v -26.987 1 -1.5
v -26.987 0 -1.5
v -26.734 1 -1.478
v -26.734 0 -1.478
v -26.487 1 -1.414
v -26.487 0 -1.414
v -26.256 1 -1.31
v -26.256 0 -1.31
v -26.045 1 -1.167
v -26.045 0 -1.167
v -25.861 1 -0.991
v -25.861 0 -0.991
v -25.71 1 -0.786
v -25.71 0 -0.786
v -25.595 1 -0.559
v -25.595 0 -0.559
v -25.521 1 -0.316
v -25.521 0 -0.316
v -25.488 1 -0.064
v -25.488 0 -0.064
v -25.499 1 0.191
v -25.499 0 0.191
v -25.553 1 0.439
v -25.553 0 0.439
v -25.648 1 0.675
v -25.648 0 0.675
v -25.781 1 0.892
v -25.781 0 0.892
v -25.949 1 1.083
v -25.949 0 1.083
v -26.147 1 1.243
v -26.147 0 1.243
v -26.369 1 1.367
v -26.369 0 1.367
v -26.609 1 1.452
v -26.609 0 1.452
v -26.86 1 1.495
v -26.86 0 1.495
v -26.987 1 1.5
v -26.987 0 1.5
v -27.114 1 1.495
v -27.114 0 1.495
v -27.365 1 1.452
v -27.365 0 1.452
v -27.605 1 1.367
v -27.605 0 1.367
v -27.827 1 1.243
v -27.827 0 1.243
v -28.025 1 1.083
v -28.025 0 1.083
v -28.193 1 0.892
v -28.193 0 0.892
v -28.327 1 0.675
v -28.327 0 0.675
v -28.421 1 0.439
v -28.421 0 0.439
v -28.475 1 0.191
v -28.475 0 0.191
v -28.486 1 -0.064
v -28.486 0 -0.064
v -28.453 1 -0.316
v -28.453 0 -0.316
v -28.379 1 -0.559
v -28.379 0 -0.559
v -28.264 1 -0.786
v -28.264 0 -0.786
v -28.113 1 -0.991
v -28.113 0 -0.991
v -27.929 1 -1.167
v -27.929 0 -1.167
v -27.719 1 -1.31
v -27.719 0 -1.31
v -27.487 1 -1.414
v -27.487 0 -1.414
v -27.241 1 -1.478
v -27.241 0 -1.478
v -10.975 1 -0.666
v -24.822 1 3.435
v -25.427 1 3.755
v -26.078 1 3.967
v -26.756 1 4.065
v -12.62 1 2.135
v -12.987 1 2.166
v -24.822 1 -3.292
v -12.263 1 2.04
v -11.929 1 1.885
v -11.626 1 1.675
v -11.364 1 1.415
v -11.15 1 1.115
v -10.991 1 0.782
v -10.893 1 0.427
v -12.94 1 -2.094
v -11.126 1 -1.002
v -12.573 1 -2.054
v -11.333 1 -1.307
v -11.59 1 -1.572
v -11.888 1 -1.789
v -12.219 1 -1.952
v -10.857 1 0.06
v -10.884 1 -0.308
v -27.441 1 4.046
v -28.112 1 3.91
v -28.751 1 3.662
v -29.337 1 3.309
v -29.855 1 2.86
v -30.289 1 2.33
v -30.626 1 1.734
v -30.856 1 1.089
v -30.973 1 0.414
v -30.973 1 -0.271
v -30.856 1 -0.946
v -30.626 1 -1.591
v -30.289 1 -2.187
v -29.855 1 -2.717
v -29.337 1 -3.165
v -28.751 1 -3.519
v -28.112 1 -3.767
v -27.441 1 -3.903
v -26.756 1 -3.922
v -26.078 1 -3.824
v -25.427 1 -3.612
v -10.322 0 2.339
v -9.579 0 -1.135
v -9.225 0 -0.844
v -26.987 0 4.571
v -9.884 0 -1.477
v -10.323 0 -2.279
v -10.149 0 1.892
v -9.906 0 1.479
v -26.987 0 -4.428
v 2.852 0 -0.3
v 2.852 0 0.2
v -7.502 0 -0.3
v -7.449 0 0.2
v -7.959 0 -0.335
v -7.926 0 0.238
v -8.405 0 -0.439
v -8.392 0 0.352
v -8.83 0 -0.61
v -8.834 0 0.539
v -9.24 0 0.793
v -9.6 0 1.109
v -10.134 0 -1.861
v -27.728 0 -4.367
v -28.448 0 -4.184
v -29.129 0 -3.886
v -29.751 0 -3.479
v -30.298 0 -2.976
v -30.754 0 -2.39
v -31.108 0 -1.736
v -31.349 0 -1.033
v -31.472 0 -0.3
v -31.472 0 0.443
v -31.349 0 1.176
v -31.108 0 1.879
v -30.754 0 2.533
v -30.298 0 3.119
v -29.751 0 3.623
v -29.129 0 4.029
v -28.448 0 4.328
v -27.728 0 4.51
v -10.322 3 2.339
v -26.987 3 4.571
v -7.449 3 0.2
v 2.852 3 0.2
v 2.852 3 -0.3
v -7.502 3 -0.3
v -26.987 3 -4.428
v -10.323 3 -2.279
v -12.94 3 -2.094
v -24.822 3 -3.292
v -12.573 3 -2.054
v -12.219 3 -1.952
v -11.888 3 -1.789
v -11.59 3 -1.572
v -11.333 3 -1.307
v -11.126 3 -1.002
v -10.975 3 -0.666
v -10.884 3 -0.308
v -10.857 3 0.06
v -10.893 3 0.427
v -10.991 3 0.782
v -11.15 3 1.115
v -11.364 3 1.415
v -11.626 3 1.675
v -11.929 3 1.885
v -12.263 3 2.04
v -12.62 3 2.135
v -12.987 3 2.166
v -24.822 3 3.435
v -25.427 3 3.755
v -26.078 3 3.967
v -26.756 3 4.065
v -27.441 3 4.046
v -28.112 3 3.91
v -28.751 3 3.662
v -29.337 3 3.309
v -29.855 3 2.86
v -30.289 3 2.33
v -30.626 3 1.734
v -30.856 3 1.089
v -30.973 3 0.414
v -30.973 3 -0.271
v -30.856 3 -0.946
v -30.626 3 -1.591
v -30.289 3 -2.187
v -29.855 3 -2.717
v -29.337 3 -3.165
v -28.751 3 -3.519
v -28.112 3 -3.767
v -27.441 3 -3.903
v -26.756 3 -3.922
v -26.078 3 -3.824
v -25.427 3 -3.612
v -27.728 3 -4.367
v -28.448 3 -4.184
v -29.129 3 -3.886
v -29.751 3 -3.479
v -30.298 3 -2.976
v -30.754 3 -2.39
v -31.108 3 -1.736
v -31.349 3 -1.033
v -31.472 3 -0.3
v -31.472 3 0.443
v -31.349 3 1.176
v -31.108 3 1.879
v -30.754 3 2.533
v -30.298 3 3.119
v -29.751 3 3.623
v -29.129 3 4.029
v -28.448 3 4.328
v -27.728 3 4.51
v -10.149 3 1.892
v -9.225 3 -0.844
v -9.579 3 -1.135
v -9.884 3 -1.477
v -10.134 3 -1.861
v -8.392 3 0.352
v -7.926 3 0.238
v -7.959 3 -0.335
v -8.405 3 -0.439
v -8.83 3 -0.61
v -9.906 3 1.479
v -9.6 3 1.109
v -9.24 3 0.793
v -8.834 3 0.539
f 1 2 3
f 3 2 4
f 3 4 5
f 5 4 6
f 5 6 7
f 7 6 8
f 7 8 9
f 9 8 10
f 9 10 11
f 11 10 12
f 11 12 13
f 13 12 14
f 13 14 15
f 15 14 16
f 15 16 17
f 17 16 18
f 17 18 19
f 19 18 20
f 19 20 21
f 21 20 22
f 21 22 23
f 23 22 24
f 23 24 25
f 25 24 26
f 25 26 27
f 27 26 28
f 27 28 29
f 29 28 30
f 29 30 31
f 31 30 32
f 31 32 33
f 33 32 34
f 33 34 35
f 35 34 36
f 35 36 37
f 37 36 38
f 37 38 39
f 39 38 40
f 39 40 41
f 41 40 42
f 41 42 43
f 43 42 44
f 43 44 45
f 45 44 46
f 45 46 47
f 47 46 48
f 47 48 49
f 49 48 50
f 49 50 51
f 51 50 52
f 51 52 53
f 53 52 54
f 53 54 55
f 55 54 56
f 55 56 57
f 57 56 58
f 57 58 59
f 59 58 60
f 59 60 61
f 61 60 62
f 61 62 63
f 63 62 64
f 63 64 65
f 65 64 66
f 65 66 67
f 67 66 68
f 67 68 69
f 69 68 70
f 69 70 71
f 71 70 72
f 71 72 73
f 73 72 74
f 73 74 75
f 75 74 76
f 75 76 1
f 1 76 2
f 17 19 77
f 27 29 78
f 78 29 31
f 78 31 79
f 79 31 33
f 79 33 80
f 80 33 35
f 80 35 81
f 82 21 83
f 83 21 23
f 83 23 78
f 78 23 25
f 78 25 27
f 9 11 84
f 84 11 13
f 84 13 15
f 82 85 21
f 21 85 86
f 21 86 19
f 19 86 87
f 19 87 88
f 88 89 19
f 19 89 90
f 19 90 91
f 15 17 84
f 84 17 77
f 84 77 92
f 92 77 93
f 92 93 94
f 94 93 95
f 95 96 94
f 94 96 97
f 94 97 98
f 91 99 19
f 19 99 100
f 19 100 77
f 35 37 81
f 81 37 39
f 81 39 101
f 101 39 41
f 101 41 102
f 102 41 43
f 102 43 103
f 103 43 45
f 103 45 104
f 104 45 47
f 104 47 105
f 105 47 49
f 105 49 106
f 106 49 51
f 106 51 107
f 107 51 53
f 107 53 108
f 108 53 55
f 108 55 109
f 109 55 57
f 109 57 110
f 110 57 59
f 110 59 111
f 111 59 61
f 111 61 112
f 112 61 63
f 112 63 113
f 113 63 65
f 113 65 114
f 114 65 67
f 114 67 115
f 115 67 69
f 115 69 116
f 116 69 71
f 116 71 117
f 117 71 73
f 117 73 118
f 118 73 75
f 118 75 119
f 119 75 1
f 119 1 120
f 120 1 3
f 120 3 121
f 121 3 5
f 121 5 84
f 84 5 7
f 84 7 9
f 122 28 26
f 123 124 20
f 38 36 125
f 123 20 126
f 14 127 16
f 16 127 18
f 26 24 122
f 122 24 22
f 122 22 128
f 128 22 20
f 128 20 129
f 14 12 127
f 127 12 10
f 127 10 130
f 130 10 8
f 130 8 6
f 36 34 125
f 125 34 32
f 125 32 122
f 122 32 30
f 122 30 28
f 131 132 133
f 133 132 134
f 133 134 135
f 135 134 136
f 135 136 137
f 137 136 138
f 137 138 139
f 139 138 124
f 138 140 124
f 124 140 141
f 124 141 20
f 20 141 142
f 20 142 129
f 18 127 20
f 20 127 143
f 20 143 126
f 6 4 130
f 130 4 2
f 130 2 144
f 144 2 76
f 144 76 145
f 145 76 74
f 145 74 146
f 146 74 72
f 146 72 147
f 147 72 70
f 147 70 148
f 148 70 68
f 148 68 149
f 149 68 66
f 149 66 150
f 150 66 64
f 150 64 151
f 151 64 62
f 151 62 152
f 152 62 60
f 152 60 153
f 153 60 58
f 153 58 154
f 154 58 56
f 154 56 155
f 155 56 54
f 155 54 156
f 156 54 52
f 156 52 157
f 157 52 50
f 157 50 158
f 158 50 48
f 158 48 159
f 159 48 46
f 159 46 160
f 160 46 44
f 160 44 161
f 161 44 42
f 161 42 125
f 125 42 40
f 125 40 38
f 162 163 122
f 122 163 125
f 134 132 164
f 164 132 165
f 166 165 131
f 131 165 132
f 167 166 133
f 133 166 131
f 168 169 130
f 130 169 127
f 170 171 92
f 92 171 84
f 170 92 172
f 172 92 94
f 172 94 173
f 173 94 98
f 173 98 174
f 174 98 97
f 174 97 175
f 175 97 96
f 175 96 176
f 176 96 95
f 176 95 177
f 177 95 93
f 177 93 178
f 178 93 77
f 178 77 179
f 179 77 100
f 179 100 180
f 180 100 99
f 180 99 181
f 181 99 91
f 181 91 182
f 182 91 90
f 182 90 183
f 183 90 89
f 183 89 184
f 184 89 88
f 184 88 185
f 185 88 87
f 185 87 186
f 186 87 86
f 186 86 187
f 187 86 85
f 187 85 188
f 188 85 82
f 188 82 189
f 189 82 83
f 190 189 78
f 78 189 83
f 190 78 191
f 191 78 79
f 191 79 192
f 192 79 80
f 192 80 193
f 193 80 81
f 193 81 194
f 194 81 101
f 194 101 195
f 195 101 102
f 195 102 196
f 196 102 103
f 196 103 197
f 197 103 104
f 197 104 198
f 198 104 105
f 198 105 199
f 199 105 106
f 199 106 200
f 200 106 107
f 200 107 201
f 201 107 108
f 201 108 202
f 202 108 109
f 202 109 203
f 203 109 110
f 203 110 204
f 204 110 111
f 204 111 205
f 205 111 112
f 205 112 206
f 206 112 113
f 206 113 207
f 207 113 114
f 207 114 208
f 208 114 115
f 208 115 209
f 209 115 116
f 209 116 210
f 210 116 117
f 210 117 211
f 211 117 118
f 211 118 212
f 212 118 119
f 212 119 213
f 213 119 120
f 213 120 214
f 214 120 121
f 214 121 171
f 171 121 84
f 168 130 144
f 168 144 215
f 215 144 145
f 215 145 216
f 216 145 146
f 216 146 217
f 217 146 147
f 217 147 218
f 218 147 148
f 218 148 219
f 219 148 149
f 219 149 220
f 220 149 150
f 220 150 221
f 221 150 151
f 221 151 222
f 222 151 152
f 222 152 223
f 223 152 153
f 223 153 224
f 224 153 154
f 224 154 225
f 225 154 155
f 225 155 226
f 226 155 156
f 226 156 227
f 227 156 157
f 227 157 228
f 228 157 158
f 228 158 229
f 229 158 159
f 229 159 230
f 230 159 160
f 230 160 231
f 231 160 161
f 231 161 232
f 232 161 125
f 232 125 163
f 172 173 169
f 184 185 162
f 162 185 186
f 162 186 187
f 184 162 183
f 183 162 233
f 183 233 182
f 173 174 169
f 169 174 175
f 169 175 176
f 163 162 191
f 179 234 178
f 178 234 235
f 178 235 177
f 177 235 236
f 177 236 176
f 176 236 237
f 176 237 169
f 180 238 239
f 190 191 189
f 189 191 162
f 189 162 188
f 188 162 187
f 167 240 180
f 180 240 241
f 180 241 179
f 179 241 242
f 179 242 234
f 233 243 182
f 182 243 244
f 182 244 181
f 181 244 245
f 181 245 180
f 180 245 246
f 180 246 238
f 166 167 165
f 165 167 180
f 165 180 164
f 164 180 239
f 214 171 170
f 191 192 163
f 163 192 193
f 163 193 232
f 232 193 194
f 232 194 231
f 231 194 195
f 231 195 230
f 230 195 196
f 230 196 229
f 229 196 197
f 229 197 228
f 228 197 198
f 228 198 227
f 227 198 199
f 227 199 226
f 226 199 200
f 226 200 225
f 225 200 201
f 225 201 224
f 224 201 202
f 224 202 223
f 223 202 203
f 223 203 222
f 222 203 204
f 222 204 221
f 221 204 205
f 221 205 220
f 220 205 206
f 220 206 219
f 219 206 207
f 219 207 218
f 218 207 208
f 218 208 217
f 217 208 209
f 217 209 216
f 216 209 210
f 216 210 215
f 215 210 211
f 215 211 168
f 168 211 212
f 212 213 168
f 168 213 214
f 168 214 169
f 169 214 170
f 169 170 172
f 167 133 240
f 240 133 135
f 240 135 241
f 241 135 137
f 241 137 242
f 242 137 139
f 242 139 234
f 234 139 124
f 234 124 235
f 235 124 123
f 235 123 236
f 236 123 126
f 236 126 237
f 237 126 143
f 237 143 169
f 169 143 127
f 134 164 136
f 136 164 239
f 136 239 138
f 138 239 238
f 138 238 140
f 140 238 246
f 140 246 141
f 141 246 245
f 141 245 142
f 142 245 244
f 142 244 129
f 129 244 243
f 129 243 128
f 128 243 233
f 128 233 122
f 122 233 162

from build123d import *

# Parameters (mm, degrees)
SKETCH2_R           = 1.5
BOSS_EXTRUDE1_DEPTH = 1
BOSS_EXTRUDE2_DEPTH = 3
FILLET1_R           = 3
FILLET2_R           = 3


with BuildPart() as part:
    # Sketch2 → Boss-Extrude1 (new body)
    with BuildSketch(Plane(origin=(0, 0, 0), x_dir=(1, 0, 0), z_dir=(0, 1, 0))):
        with BuildLine():
            Line((-12.939762178, 2.094266176), (-24.821781773, 3.29179515))
            ThreePointArc((-24.821781773, 3.29179515), (-30.987291256, -0.071668068), (-24.821747911, -3.435069212))
            Line((-24.821747911, -3.435069212), (-12.987160246, -2.166440487))
            ThreePointArc((-12.987160246, -2.166440487), (-10.8566751, -0.059524017), (-12.939762178, 2.094266176))
        make_face()
        with Locations(Location((-26.987114413, 0, 0), (0, 0, 270))):
            Circle(SKETCH2_R, mode=Mode.SUBTRACT)
    extrude(amount=BOSS_EXTRUDE1_DEPTH)

    # Sketch2<3> → Boss-Extrude2 (add)
    with BuildSketch(Plane(origin=(0, 0, 0), x_dir=(1, 0, 0), z_dir=(0, 1, 0))):
        with BuildLine():
            Line((-10.322349305, -2.339041202), (-10.322728968, -0.2))
            Line((-10.322728968, -0.2), (2.851540312, -0.2))
            Line((2.851540312, -0.2), (2.851540312, 0.3))
            Line((2.851540312, 0.3), (-10.322728968, 0.3))
            Line((-10.322728968, 0.3), (-10.322728968, 2.279037645))
            Line((-10.322728968, 2.279037645), (-26.987114411, 4.428185187))
            ThreePointArc((-26.987114411, 4.428185187), (-31.48694753, -0.071647931), (-26.987114411, -4.57148105))
            Line((-26.987114411, -4.57148105), (-10.322349305, -2.339041202))
        make_face()
        with BuildLine():
            ThreePointArc((-12.939762178, 2.094266176), (-10.8566751, -0.059524017), (-12.987160246, -2.166440487))
            Line((-12.987160246, -2.166440487), (-24.821747911, -3.435069212))
            ThreePointArc((-24.821747911, -3.435069212), (-30.987291256, -0.071668068), (-24.821781773, 3.29179515))
            Line((-24.821781773, 3.29179515), (-12.939762178, 2.094266176))
        make_face(mode=Mode.SUBTRACT)
    extrude(amount=BOSS_EXTRUDE2_DEPTH)

    # Fillet1
    # the kernel refuses this fillet: 3 mm, written as the material it adds along each edge
    with BuildSketch(Plane(origin=(-10.322728968, 0, -0.3), x_dir=(1, 0, 0), z_dir=(0, 1, 0))) as fillet1_piece_1:
        with BuildLine():
            CenterArc((2.820928193, 3), FILLET1_R, 199.896419226, 70.103580774)
            Line((0, 1.979037645), (-0.056418564, 1.958618398))
            ThreePointArc((-0.056418564, 1.958618398), (-0.06, 0.989518822), (-0.06, 0))
            Line((-0.06, 0), (0, -0.06))
            Line((0, -0.06), (2.820928193, -0.06))
            Line((2.820928193, -0.06), (2.820928193, 0))
        make_face()
    extrude(amount=3)

    # Fillet2
    # the kernel refuses this fillet: 3 mm, written as the material it adds along each edge
    with BuildSketch(Plane(origin=(-10.322728968, 0, 0.2), x_dir=(1, 0, 0), z_dir=(0, 1, 0))) as fillet2_piece_1:
        with BuildLine():
            CenterArc((2.874183753, -3), FILLET2_R, 90, 73.322386102)
            Line((0.000379663, -2.139041202), (-0.057096419, -2.121822026))
            ThreePointArc((-0.057096419, -2.121822026), (-0.059810168, -1.069531251), (-0.059999999, -1.065e-05))
            Line((-0.059999999, -1.065e-05), (0, 0.06))
            Line((0, 0.06), (2.874183753, 0.06))
            Line((2.874183753, 0.06), (2.874183753, 0))
        make_face()
    extrude(amount=3)


solid = part.part
